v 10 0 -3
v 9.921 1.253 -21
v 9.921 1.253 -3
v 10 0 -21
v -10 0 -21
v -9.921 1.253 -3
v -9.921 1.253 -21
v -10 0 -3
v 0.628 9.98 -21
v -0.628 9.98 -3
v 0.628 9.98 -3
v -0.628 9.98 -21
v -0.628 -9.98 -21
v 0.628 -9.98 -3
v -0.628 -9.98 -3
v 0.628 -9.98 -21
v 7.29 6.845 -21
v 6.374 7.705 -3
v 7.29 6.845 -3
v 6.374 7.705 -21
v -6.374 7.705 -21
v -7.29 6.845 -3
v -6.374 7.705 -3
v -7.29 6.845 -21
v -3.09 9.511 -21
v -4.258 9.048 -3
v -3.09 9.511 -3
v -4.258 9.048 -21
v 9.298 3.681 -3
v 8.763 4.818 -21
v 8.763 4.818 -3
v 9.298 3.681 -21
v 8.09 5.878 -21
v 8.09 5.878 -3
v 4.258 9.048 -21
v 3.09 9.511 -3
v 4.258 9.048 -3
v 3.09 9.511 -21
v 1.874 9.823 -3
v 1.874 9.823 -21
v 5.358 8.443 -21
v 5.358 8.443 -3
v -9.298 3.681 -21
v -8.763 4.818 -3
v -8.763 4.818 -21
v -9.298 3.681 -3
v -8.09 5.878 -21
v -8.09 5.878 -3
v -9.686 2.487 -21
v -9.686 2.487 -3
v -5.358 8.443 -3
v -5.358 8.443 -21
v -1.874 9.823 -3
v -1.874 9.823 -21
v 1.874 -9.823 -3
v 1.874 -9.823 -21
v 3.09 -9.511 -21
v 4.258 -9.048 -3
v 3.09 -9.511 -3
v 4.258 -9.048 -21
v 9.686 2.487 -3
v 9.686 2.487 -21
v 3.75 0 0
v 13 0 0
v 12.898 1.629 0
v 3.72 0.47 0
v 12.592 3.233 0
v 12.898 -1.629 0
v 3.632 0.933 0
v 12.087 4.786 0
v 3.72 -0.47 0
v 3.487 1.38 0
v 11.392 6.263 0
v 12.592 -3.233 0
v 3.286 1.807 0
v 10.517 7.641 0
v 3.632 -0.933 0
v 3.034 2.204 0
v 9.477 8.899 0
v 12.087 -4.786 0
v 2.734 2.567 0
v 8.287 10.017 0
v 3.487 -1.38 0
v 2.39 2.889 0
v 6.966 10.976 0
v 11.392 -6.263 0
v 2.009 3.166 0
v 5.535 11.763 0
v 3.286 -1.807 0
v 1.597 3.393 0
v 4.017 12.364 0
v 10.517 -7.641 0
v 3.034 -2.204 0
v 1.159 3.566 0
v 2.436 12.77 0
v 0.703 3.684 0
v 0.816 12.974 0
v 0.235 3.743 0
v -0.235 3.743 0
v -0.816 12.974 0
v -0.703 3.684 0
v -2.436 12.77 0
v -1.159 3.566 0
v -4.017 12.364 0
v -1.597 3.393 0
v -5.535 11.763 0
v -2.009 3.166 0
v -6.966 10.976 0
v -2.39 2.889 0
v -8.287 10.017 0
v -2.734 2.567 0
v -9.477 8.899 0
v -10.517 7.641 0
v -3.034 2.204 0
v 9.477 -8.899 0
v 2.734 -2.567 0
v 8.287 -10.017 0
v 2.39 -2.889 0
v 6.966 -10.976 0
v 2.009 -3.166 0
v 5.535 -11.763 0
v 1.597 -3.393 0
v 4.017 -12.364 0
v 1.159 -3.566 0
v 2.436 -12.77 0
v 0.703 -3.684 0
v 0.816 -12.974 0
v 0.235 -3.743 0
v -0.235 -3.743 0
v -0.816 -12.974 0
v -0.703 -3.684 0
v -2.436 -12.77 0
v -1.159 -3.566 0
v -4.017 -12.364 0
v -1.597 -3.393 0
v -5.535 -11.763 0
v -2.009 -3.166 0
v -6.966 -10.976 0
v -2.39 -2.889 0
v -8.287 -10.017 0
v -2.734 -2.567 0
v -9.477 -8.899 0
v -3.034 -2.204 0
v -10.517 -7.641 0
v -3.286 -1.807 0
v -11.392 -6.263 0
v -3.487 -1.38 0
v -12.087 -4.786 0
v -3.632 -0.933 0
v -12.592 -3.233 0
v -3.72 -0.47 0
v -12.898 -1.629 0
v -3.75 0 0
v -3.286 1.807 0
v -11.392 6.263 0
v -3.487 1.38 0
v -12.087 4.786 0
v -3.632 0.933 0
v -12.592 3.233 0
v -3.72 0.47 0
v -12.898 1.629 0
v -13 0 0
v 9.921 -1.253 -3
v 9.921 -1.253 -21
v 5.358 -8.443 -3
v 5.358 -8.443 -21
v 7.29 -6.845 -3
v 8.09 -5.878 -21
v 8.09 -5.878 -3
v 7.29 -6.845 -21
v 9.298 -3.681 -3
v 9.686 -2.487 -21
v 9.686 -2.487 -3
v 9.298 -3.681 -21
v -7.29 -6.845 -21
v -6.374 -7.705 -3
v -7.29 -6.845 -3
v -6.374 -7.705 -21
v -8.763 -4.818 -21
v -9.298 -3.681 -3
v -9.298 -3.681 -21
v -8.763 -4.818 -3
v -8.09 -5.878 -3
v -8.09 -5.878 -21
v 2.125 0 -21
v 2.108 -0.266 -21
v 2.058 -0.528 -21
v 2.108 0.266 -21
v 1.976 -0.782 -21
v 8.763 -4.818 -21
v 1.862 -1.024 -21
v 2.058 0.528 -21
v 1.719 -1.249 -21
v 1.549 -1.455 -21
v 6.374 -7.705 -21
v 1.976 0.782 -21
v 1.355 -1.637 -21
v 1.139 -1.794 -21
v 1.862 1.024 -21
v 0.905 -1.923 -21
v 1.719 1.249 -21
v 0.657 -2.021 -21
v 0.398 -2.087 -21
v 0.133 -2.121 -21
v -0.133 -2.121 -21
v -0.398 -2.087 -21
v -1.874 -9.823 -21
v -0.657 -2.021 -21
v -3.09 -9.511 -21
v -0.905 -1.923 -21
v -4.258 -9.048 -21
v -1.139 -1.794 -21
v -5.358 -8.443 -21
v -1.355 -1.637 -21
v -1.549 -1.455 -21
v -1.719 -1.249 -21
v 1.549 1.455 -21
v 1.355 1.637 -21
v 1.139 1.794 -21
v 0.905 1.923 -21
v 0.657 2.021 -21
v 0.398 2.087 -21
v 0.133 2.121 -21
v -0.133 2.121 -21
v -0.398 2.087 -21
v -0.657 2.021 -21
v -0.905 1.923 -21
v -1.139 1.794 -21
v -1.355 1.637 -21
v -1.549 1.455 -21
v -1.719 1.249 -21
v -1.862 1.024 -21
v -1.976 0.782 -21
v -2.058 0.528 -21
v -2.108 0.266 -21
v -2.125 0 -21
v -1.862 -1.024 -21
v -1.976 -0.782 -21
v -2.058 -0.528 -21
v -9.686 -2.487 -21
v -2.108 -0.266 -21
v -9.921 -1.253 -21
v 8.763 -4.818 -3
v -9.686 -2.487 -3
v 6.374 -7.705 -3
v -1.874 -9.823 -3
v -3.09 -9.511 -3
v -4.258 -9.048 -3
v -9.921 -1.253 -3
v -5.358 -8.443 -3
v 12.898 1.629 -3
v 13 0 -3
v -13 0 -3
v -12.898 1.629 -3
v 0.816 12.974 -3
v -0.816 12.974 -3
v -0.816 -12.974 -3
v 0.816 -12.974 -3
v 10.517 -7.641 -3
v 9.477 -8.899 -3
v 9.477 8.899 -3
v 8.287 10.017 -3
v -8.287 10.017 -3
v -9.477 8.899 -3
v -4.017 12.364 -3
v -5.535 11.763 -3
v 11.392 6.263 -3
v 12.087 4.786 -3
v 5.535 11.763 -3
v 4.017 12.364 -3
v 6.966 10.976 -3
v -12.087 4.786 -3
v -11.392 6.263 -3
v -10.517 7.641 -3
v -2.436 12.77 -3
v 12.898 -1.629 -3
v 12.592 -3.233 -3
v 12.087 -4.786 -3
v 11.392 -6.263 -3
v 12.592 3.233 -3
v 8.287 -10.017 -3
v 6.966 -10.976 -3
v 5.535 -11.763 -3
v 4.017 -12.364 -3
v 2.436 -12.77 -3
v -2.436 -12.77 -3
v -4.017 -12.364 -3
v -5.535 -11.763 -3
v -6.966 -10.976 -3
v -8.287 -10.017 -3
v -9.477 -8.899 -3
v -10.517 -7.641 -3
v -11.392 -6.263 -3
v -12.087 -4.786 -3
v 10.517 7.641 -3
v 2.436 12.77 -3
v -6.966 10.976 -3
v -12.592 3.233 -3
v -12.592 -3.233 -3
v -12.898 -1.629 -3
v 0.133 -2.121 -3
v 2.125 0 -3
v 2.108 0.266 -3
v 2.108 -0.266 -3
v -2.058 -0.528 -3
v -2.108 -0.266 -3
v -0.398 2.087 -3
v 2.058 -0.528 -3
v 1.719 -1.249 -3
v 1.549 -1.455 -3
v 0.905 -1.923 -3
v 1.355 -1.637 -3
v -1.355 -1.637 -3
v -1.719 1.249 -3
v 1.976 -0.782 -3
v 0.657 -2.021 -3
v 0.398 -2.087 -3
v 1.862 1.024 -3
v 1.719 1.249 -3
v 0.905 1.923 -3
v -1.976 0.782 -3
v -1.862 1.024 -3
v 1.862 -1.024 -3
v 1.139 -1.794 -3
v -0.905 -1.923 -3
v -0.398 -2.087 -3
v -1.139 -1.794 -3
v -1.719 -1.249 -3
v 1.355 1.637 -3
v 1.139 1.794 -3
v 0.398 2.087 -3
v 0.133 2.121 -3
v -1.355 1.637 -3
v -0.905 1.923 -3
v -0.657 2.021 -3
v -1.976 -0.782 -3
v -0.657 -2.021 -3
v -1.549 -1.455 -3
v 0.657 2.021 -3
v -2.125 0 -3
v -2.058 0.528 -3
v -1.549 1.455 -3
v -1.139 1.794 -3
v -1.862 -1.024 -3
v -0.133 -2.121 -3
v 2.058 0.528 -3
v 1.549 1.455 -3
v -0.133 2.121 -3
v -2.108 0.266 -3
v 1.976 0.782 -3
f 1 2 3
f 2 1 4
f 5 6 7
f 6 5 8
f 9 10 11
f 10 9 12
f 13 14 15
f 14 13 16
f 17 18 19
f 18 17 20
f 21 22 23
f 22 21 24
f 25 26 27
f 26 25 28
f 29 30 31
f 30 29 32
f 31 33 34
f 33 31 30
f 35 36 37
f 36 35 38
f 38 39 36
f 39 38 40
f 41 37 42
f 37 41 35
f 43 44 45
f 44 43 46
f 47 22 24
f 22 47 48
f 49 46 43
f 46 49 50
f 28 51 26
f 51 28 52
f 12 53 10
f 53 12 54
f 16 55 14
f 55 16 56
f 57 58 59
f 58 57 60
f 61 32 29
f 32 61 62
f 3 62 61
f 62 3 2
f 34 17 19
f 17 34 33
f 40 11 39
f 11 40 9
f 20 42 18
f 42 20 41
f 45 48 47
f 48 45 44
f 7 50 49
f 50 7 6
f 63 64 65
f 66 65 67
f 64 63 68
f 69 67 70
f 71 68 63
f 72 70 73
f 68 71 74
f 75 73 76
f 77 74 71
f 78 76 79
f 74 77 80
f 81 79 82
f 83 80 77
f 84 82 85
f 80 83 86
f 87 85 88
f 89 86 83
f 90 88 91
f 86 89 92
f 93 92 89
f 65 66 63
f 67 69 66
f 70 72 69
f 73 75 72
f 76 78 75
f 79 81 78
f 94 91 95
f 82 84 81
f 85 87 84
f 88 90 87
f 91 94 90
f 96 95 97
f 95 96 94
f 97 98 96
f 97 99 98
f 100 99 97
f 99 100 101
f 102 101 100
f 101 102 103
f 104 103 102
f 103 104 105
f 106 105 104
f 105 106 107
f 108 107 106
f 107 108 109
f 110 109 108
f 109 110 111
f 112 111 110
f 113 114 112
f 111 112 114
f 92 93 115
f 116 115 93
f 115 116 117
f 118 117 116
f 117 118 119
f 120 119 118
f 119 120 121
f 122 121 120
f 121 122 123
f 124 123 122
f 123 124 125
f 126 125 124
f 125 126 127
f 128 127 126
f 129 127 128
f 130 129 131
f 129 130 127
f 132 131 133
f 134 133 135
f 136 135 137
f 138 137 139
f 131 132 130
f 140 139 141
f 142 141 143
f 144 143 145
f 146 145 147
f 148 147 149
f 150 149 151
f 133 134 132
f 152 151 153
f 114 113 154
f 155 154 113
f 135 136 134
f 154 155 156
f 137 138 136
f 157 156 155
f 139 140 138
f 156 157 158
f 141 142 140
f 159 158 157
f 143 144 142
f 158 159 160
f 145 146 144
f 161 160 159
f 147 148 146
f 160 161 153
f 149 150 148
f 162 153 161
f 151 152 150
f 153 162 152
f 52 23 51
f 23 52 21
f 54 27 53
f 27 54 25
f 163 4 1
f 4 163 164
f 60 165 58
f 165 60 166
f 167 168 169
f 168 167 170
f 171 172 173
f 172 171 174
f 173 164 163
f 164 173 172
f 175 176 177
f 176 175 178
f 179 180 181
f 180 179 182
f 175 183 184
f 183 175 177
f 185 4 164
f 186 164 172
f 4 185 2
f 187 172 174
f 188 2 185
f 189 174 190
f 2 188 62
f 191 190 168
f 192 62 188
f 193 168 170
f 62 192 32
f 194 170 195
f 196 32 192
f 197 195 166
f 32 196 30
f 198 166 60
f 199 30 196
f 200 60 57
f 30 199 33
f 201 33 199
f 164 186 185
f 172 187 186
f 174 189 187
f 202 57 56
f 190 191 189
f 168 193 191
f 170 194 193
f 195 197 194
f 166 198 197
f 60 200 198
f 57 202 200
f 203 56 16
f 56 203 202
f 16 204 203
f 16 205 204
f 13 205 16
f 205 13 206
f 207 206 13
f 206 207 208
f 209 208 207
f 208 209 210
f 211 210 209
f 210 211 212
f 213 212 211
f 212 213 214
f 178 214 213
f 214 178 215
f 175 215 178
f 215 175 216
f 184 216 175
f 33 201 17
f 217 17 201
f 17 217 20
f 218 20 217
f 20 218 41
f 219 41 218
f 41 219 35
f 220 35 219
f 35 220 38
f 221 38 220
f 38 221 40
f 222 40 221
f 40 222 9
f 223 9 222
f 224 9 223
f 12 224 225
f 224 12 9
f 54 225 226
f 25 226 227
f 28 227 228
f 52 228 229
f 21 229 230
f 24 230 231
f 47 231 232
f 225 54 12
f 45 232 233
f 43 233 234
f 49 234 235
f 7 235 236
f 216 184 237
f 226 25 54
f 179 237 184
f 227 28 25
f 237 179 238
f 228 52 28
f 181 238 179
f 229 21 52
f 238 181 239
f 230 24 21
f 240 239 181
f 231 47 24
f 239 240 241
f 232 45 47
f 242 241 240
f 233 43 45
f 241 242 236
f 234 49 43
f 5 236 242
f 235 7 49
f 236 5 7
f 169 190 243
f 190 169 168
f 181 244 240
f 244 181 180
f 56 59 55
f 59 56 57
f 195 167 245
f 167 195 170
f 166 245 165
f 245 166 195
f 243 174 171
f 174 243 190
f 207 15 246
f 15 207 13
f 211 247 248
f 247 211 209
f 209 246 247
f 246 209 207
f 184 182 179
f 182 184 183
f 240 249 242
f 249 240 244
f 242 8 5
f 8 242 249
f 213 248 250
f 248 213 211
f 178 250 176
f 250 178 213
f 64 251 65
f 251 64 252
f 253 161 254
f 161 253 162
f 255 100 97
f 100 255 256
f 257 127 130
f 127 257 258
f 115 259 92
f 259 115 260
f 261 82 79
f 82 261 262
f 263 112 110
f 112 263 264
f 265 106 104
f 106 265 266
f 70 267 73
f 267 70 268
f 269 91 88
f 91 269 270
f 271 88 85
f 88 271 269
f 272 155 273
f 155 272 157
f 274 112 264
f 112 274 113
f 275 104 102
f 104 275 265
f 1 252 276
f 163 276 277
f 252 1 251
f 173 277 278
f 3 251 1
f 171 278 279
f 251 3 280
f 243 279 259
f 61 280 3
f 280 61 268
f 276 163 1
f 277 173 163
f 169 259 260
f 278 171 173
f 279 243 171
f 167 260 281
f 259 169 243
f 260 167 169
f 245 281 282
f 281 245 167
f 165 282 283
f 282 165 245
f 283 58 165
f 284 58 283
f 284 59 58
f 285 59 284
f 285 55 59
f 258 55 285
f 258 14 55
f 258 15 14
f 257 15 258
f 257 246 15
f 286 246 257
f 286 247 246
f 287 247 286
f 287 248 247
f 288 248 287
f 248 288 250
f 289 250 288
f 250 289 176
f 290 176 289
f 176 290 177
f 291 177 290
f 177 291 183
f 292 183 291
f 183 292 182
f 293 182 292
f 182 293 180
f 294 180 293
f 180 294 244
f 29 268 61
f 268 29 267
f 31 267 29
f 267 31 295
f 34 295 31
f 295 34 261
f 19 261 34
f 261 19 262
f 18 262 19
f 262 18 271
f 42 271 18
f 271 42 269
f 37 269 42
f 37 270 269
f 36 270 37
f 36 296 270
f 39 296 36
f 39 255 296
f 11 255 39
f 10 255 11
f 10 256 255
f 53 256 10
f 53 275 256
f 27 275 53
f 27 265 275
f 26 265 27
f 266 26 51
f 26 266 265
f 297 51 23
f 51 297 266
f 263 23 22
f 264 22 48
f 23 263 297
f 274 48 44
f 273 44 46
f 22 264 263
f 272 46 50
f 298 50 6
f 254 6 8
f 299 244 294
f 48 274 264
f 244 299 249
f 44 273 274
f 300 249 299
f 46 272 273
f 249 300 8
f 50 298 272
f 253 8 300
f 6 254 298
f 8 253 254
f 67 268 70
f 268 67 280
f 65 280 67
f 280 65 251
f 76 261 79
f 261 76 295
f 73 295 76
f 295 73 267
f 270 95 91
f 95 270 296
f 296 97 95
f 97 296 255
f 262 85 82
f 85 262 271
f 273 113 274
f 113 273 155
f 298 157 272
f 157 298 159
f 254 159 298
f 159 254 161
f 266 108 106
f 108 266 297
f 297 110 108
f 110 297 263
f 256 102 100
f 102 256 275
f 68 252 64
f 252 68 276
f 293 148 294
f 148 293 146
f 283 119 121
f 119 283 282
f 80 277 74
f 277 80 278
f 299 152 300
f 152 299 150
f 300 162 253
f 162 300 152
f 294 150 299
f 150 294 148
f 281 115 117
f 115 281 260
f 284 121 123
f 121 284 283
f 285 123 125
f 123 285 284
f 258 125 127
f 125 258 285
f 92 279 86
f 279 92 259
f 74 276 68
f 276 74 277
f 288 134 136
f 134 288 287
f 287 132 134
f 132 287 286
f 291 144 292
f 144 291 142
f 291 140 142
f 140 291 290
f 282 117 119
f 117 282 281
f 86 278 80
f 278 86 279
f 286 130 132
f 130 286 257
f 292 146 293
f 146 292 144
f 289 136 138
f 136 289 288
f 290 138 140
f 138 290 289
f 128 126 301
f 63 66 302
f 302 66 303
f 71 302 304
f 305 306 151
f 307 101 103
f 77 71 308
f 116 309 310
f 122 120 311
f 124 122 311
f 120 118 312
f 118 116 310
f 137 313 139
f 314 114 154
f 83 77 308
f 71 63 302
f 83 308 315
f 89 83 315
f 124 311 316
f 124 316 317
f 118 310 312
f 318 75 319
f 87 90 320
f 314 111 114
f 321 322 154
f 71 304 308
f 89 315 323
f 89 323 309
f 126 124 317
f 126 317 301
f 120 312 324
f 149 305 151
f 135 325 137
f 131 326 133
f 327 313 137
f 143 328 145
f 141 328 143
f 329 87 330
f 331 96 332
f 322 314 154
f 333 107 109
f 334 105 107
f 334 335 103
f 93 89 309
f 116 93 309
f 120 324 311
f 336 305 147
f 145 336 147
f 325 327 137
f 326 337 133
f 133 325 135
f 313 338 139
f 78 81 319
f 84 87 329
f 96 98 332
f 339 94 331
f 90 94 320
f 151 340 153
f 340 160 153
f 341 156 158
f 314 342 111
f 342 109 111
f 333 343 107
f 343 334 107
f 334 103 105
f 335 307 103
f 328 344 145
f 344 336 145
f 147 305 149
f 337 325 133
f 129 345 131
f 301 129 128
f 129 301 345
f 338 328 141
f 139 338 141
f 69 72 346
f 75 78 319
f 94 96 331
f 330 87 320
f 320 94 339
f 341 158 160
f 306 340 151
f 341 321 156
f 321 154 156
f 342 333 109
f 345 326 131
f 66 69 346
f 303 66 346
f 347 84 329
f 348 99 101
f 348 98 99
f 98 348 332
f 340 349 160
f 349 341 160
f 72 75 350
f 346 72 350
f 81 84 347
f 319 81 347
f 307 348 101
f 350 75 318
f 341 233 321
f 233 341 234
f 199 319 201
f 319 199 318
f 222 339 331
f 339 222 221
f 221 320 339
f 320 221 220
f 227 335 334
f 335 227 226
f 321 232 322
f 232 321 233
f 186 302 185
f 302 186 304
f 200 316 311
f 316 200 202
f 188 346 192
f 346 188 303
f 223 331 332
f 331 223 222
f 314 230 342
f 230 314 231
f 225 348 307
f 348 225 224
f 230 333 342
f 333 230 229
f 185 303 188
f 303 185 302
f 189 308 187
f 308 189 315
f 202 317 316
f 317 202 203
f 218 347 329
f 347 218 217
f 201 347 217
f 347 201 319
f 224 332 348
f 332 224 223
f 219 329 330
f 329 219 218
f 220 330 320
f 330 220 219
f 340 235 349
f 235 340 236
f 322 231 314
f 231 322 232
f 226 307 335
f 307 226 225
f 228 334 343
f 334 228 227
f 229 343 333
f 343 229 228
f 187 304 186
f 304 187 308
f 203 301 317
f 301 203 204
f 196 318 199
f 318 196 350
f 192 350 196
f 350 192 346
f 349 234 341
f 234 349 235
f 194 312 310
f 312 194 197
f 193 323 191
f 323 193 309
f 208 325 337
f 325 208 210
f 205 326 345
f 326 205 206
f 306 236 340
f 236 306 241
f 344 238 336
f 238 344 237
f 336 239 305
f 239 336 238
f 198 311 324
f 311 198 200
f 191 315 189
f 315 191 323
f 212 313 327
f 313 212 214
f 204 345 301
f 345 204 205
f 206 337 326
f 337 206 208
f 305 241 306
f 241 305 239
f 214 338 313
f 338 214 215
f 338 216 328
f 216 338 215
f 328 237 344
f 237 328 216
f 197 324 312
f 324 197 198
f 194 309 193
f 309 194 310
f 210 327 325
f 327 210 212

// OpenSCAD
$fn = 50;


difference() {
	union() {
		translate(v = [0, 0, -21.0000000000]) {
			cylinder(h = 21, r = 10.0000000000);
		}
		translate(v = [0, 0, -3.0000000000]) {
			cylinder(h = 3, r = 13.0000000000);
		}
	}
	union() {
		translate(v = [0, 0, 0]) {
			rotate(a = [0, 0, 0]) {
				difference() {
					union() {
						#translate(v = [0, 0, -21.0000000000]) {
							cylinder(h = 21, r = 2.0000000000);
						}
						#translate(v = [0, 0, -3]) {
							cylinder(h = 3, r1 = 2.1250000000, r2 = 3.7500000000);
						}
						#translate(v = [0, 0, -21.0000000000]) {
							cylinder(h = 21, r = 2.1250000000);
						}
						#translate(v = [0, 0, -21.0000000000]) {
							cylinder(h = 21, r = 2.0000000000);
						}
					}
					union();
				}
			}
		}
	}
}
